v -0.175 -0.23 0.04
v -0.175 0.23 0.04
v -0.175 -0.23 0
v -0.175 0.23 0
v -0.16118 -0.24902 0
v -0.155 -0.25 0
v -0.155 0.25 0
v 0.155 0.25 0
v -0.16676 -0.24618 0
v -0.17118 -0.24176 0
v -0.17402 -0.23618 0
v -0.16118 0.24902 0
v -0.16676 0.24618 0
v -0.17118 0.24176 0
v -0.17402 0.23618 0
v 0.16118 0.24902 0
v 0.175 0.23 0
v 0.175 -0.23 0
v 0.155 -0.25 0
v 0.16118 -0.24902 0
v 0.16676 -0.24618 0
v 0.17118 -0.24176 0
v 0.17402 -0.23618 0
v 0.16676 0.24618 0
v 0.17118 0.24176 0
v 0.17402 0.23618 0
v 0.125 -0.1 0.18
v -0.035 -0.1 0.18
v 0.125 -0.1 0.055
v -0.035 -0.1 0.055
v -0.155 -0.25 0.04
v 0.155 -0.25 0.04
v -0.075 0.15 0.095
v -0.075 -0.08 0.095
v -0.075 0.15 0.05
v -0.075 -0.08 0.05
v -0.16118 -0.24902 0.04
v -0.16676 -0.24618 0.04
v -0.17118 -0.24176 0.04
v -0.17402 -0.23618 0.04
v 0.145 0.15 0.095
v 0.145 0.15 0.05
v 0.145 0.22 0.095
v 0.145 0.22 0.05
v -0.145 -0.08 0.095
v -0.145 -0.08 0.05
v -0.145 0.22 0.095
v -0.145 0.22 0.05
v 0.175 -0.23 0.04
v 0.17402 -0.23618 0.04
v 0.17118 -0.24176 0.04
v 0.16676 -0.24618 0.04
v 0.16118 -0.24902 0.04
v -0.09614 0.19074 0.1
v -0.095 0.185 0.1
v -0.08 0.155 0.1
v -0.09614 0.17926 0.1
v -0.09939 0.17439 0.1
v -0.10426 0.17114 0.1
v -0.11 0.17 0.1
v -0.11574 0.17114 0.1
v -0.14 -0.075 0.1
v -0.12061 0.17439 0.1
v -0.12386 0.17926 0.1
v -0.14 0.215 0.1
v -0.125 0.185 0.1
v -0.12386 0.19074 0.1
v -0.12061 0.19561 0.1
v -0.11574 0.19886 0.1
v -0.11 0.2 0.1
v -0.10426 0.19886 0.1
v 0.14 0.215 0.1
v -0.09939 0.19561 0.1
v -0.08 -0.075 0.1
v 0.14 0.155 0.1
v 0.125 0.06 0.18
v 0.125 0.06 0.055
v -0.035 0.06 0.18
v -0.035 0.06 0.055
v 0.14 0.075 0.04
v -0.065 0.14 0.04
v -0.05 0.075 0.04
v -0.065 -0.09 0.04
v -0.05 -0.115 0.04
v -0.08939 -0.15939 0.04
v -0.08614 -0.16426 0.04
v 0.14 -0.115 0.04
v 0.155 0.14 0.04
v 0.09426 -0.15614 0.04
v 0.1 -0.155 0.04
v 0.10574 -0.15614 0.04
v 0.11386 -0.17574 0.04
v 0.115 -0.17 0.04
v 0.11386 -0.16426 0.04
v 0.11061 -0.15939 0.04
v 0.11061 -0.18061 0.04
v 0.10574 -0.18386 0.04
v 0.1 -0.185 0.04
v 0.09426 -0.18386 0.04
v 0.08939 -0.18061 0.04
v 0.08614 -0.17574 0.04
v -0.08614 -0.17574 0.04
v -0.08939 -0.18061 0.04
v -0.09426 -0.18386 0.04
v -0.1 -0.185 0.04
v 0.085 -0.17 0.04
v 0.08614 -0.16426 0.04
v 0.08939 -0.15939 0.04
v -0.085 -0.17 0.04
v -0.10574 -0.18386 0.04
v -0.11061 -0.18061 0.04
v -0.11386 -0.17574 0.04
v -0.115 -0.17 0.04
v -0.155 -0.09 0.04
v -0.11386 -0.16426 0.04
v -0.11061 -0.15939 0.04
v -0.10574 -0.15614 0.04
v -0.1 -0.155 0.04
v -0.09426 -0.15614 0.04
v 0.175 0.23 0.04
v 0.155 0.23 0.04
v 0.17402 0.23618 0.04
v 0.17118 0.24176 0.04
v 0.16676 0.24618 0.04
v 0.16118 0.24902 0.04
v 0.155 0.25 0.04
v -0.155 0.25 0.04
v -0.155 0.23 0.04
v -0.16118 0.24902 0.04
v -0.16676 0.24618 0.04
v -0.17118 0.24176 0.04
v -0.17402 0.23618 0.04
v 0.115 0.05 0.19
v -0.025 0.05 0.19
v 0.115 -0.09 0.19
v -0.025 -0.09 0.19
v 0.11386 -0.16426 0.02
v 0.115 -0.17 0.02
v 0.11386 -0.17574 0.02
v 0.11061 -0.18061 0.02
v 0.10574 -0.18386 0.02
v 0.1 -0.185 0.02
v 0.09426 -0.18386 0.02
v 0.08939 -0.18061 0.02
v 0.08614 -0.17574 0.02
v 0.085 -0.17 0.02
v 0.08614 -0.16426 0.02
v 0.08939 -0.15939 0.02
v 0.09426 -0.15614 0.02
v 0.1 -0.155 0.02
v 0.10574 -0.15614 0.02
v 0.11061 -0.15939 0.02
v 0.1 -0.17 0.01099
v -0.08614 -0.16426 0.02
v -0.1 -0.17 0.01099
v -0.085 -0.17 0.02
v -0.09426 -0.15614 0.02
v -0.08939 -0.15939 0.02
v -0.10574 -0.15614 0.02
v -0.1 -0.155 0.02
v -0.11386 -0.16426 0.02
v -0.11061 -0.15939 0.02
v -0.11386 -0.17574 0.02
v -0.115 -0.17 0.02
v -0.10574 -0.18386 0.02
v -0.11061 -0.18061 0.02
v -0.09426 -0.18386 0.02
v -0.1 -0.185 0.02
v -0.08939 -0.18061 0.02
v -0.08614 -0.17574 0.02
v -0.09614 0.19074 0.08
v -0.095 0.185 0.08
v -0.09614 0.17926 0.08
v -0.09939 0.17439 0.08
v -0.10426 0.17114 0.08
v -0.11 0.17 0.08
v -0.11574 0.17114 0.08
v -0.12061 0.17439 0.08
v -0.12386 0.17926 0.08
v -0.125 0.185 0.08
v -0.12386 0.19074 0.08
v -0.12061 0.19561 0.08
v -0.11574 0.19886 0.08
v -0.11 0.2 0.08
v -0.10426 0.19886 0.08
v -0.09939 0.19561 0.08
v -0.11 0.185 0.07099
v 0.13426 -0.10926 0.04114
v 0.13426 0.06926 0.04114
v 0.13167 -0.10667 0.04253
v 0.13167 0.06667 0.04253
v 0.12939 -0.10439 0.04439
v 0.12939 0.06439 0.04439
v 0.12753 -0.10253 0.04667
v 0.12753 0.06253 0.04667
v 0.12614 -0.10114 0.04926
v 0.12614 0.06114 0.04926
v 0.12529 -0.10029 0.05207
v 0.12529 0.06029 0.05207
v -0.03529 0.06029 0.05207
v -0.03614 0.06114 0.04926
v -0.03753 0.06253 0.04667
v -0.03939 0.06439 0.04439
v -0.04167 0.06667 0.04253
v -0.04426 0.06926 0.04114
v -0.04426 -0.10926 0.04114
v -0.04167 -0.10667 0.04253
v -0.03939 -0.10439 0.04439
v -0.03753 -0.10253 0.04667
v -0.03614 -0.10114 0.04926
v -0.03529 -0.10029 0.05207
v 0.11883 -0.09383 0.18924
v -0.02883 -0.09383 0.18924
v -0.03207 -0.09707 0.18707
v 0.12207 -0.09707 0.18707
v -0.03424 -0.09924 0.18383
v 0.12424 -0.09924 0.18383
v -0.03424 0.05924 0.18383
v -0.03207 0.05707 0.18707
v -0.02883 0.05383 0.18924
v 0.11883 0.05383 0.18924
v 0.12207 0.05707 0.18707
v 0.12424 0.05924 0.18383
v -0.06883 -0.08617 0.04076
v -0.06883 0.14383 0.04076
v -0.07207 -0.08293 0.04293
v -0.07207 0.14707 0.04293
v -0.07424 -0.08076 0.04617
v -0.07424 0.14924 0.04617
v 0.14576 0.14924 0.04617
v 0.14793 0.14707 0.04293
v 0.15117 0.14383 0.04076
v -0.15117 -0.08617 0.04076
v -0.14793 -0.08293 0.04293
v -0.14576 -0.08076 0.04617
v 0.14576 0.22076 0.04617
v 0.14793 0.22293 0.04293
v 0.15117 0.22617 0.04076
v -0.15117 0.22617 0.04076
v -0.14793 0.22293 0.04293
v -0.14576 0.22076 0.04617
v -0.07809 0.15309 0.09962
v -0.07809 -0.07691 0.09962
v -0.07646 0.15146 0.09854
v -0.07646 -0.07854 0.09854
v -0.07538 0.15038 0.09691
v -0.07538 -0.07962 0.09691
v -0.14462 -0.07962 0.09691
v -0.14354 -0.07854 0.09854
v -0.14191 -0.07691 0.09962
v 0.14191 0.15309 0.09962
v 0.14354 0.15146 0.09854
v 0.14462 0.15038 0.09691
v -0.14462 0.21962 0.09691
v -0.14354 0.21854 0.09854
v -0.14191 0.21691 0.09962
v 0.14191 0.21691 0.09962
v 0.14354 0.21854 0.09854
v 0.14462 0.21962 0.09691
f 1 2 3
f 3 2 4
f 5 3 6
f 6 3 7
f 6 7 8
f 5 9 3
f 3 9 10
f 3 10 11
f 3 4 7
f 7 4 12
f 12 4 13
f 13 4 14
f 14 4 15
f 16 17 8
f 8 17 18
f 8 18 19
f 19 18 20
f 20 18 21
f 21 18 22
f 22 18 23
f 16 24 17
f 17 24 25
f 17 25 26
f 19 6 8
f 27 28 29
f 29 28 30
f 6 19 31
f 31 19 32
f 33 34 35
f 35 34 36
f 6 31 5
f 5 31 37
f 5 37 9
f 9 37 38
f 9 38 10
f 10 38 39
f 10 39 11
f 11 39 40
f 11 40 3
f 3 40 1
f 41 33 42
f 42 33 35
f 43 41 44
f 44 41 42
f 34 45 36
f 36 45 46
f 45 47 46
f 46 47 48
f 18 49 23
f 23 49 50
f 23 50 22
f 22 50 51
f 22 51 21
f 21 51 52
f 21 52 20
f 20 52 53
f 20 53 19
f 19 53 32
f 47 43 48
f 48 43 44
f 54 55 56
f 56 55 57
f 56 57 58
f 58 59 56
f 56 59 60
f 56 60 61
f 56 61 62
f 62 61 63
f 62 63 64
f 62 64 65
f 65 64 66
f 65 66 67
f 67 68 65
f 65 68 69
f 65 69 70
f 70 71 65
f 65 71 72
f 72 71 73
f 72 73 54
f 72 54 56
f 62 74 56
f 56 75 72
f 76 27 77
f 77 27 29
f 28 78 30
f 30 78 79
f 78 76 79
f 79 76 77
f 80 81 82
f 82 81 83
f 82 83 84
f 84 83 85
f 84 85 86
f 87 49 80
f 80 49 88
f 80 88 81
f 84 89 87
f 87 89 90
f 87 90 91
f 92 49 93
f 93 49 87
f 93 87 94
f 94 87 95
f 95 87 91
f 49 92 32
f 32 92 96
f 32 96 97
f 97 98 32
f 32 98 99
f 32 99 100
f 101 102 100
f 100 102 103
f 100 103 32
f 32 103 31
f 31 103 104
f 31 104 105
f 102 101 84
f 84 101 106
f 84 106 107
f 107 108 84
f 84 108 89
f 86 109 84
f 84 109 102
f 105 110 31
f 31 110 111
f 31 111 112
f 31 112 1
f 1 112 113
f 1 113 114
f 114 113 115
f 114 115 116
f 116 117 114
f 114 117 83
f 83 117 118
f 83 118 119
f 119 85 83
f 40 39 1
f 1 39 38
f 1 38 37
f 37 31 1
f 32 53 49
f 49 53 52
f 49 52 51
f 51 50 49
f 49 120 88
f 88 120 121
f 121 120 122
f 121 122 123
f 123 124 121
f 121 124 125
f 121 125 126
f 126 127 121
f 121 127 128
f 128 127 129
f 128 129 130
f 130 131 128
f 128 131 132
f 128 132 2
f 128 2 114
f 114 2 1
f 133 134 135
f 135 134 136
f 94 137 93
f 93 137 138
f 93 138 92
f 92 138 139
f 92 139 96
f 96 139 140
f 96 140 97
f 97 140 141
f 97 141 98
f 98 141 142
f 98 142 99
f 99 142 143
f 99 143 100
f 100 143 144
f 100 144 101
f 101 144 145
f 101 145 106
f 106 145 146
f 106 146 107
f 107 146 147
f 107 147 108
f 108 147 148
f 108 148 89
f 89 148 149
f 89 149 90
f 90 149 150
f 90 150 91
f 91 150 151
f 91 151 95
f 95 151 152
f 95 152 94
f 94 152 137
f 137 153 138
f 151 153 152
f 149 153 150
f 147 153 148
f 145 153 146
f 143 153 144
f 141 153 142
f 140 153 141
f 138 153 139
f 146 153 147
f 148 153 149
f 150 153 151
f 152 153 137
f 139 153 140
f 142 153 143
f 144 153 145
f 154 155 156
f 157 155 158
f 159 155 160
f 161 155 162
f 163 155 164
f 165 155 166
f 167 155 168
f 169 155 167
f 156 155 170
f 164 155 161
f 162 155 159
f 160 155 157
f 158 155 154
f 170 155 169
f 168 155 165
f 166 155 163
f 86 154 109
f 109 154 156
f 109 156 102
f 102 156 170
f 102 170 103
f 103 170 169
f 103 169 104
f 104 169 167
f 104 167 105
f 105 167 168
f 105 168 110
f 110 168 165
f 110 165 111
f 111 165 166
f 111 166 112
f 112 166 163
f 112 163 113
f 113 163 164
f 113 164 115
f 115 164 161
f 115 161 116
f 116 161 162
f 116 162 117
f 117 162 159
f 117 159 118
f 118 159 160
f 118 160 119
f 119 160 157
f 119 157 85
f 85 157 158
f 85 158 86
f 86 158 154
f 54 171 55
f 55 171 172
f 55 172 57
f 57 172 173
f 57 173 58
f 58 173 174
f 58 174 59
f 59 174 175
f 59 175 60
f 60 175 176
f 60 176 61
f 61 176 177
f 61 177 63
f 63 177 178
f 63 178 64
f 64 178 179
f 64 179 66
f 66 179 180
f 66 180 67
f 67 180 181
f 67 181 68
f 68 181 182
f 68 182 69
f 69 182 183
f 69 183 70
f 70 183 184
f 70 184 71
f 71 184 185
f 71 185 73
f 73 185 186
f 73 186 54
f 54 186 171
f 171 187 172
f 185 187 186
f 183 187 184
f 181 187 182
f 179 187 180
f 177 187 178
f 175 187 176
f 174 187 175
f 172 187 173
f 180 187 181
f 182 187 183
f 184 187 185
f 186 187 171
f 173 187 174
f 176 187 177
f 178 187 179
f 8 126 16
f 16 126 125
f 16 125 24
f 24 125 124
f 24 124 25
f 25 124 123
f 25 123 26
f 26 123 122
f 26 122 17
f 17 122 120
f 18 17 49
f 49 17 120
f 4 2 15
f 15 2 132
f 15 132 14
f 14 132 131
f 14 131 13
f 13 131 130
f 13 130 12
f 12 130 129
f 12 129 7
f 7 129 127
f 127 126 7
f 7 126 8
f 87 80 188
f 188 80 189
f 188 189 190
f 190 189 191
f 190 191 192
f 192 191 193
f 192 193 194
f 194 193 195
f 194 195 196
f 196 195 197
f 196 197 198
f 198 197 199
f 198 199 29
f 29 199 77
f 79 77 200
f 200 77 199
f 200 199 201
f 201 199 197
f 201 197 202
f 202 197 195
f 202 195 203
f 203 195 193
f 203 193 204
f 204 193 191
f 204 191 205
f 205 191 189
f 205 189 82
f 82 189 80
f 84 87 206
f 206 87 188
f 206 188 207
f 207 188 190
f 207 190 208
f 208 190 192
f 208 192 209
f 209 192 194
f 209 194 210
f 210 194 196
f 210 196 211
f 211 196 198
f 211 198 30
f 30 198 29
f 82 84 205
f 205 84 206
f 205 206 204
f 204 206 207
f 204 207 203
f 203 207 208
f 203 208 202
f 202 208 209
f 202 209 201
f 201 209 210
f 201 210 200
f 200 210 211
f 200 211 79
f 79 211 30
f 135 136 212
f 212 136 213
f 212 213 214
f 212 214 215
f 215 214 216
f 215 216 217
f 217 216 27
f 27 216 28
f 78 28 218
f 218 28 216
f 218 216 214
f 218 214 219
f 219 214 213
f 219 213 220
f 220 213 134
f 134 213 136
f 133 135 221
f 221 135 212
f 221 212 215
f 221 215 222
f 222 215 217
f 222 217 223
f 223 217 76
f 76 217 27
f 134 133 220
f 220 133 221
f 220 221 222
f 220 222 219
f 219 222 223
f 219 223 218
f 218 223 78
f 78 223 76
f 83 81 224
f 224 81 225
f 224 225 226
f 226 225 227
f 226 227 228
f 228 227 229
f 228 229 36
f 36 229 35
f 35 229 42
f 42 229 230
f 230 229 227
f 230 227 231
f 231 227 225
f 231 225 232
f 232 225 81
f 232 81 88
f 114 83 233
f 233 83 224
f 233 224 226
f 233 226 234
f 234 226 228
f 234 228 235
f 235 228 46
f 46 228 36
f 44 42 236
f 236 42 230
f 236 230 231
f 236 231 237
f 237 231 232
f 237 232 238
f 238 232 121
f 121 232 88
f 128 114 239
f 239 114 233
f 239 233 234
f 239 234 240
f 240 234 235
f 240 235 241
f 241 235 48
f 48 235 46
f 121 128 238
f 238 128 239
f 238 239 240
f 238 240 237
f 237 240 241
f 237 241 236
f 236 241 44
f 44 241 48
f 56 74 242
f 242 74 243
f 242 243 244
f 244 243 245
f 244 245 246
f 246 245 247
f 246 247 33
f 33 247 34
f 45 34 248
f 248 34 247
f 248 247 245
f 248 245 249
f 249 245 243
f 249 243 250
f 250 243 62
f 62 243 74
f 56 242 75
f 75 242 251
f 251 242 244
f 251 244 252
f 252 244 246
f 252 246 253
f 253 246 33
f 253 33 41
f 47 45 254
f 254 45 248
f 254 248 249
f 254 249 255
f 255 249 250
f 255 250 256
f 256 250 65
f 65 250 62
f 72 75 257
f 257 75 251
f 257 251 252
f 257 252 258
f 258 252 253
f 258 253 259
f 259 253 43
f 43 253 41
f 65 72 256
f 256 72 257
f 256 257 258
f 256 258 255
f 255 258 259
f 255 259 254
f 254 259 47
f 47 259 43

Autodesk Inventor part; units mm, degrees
ref_plane "YZ Plane" through (0, 0, 0) normal (1, 0, 0) x (0, 1, 0)
ref_plane "XZ Plane" through (0, 0, 0) normal (0, 1, 0) x (-1, 0, 0)
ref_plane "XY Plane" through (0, 0, 0) normal (0, 0, 1) x (1, 0, 0)
sketch "Schizzo1" plane through (0, 0, 0) normal (0, 0, 1) x (1, 0, 0)
  line L0 (0.175, 0.25) -> (-0.175, 0.25)
  line L1 (-0.175, 0.25) -> (-0.175, -0.25)
  line L2 (-0.175, -0.25) -> (0.175, -0.25)
  line L3 (0.175, -0.25) -> (0.175, 0.25)
  line L4 (0.175, 0.25) -> (-0.175, -0.25) construction
  line L5 (-0.175, 0.25) -> (0.175, -0.25) construction
  point P0 (0, 0)
  dimension "d0" = 0.5
  dimension "d1" = 0.35
extrude "Estrusione1" add sketch "Schizzo1" along normal blind 0.04
sketch "Schizzo2" plane through (0, 0, 0.04) normal (0, 0, 1) x (1, 0, 0)
  line L0 (-0.175, 0.25) -> (-0.175, -0.25) construction
  line L1 (-0.175, -0.25) -> (0.175, -0.25) construction
  line L2 (0.175, -0.25) -> (0.175, 0.25) construction
  line L3 (0.175, 0.25) -> (-0.175, 0.25) construction
  line L4 (-0.145, -0.08) -> (-0.075, -0.08)
  line L5 (-0.075, -0.08) -> (-0.075, 0.22)
  line L6 (-0.075, 0.22) -> (-0.145, 0.22)
  line L7 (-0.145, 0.22) -> (-0.145, -0.08)
  point P0 (0, 0)
  dimension "d4" = 0.03
  dimension "d5" = 0.03
  dimension "d6" = 0.07
  dimension "d7" = 0.3
extrude "Estrusione2" add sketch "Schizzo2" along normal blind 0.06
sketch "Schizzo3" plane through (0, 0, 0.04) normal (0, 0, 1) x (1, 0, 0)
  line L0 (-0.075, -0.08) -> (-0.145, -0.08) construction
  line L1 (-0.145, -0.08) -> (-0.145, 0.22) construction
  line L2 (-0.145, 0.22) -> (-0.075, 0.22) construction
  line L3 (-0.075, 0.22) -> (-0.075, -0.08) construction
  line L4 (-0.175, 0.25) -> (-0.175, -0.25) construction
  line L5 (-0.175, -0.25) -> (0.175, -0.25) construction
  line L6 (0.175, -0.25) -> (0.175, 0.25) construction
  line L7 (0.175, 0.25) -> (-0.175, 0.25) construction
  line L8 (-0.075, 0.15) -> (0.145, 0.15)
  line L9 (0.145, 0.15) -> (0.145, 0.22)
  line L10 (0.145, 0.22) -> (-0.075, 0.22)
  line L11 (-0.075, 0.22) -> (-0.075, 0.15)
  line L12 (-0.075, -0.08) -> (-0.075, 0.22) projected
  line L13 (-0.075, 0.22) -> (-0.145, 0.22) projected
  point P0 (0, 0)
  dimension "d10" = 0.03
  dimension "d11" = 0.07
extrude "Estrusione3" add sketch "Schizzo3" along normal blind 0.06
sketch "Schizzo4" plane through (0, 0, 0.04) normal (0, 0, 1) x (1, 0, 0)
  line L0 (-0.035, -0.1) -> (0.125, -0.1)
  line L1 (0.125, -0.1) -> (0.125, 0.06)
  line L2 (0.125, 0.06) -> (-0.035, 0.06)
  line L3 (-0.035, 0.06) -> (-0.035, -0.1)
  line L4 (-0.175, 0.25) -> (-0.175, -0.25) construction
  line L5 (-0.175, -0.25) -> (0.175, -0.25) construction
  line L6 (0.175, -0.25) -> (0.175, 0.25) construction
  line L7 (0.175, 0.25) -> (-0.175, 0.25) construction
  line L8 (-0.145, 0.22) -> (0.145, 0.22) construction
  line L9 (0.145, 0.22) -> (0.145, 0.15) construction
  line L10 (0.145, 0.15) -> (-0.075, 0.15) construction
  line L11 (-0.075, 0.15) -> (-0.075, -0.08) construction
  line L12 (-0.075, -0.08) -> (-0.145, -0.08) construction
  line L13 (-0.145, -0.08) -> (-0.145, 0.22) construction
  point P0 (0, 0)
  dimension "d14" = 0.16
  dimension "d15" = 0.16
  dimension "d16" = 0.05
  dimension "d17" = 0.15
extrude "Estrusione4" add sketch "Schizzo4" along normal blind 0.15
sketch "Schizzo5" plane through (0, 0, 0.04) normal (0, 0, 1) x (1, 0, 0)
  line L0 (0.125, -0.1) -> (-0.035, -0.1) construction
  line L1 (-0.035, -0.1) -> (-0.035, 0.06) construction
  line L2 (-0.035, 0.06) -> (0.125, 0.06) construction
  line L3 (0.125, 0.06) -> (0.125, -0.1) construction
  line L4 (-0.175, 0.25) -> (-0.175, -0.25) construction
  line L5 (-0.175, -0.25) -> (0.175, -0.25) construction
  line L6 (0.175, -0.25) -> (0.175, 0.25) construction
  line L7 (0.175, 0.25) -> (-0.175, 0.25) construction
  line L8 (-0.145, 0.22) -> (0.145, 0.22) construction
  line L9 (0.145, 0.22) -> (0.145, 0.15) construction
  line L10 (0.145, 0.15) -> (-0.075, 0.15) construction
  line L11 (-0.075, 0.15) -> (-0.075, -0.08) construction
  line L12 (-0.075, -0.08) -> (-0.145, -0.08) construction
  line L13 (-0.145, -0.08) -> (-0.145, 0.22) construction
  line L14 (0.125, -0.1) -> (0.125, 0.06) construction
  line L15 (0.125, 0.06) -> (-0.035, 0.06) construction
  line L16 (-0.035, 0.06) -> (-0.035, -0.1) construction
  line L17 (-0.035, -0.1) -> (0.125, -0.1) construction
  line L18 (-0.075, -0.08) -> (-0.075, 0.15) construction
  line L19 (-0.075, 0.15) -> (0.145, 0.15) construction
  line L20 (0.145, 0.15) -> (0.145, 0.22) construction
  line L21 (0.145, 0.22) -> (-0.145, 0.22) construction
  line L22 (-0.145, 0.22) -> (-0.145, -0.08) construction
  line L23 (-0.145, -0.08) -> (-0.075, -0.08) construction
  line L24 (-0.145, -0.08) -> (-0.075, -0.08) projected
  point P0 (0, 0)
  point P1 (-0.1, -0.17)
  point P2 (0.1, -0.17)
  point P3 (-0.11, -0.08)
  dimension "d20" = 0.08
  dimension "d21" = 0.2
  dimension "d22" = 0.075
hole "Foro1" at (-0.1, -0.17, 0.04) at (0.1, -0.17, 0.04) direction (0, 0, -1) diameter 0.03 depth 0.02 tip angle 118
sketch "Schizzo6" plane through (0, 0, 0.1) normal (0, 0, 1) x (1, 0, 0)
  line L0 (-0.075, -0.08) -> (-0.075, 0.15) construction
  line L1 (-0.075, 0.15) -> (0.145, 0.15) construction
  line L2 (0.145, 0.15) -> (0.145, 0.22) construction
  line L3 (0.145, 0.22) -> (-0.145, 0.22) construction
  line L4 (-0.145, 0.22) -> (-0.145, -0.08) construction
  line L5 (-0.145, -0.08) -> (-0.075, -0.08) construction
  point P0 (0, 0)
  point P1 (-0.11, 0.185)
  point P2 (0.145, 0.185)
  point P3 (-0.11, -0.08)
hole "Foro2" at (-0.11, 0.185, 0.1) direction (0, 0, -1) diameter 0.03 depth 0.02 tip angle 118
fillet "Raccordo1" radius 0.02 4 edges at (0.175, 0.25, 0.02) (-0.175, 0.25, 0.02) (0.175, -0.25, 0.02) (-0.175, -0.25, 0.02)
fillet "Raccordo2" radius 0.015 4 edges at (0.125, -0.02, 0.04) (0.045, -0.1, 0.04) (-0.035, -0.02, 0.04) (0.045, 0.06, 0.04)
fillet "Raccordo3" radius 0.01 4 edges at (0.045, -0.1, 0.19) (-0.035, -0.02, 0.19) (0.045, 0.06, 0.19) (0.125, -0.02, 0.19)
fillet "Raccordo4" radius 0.01 6 edges at (-0.075, 0.035, 0.04) (0.035, 0.15, 0.04) (0.145, 0.185, 0.04) (0, 0.22, 0.04) (-0.145, 0.07, 0.04) (-0.11, -0.08, 0.04)
fillet "Raccordo5" radius 0.005 6 edges at (-0.075, 0.035, 0.1) (0.035, 0.15, 0.1) (0.145, 0.185, 0.1) (0, 0.22, 0.1) (-0.145, 0.07, 0.1) (-0.11, -0.08, 0.1)
properties part number "Screwing_plate"
